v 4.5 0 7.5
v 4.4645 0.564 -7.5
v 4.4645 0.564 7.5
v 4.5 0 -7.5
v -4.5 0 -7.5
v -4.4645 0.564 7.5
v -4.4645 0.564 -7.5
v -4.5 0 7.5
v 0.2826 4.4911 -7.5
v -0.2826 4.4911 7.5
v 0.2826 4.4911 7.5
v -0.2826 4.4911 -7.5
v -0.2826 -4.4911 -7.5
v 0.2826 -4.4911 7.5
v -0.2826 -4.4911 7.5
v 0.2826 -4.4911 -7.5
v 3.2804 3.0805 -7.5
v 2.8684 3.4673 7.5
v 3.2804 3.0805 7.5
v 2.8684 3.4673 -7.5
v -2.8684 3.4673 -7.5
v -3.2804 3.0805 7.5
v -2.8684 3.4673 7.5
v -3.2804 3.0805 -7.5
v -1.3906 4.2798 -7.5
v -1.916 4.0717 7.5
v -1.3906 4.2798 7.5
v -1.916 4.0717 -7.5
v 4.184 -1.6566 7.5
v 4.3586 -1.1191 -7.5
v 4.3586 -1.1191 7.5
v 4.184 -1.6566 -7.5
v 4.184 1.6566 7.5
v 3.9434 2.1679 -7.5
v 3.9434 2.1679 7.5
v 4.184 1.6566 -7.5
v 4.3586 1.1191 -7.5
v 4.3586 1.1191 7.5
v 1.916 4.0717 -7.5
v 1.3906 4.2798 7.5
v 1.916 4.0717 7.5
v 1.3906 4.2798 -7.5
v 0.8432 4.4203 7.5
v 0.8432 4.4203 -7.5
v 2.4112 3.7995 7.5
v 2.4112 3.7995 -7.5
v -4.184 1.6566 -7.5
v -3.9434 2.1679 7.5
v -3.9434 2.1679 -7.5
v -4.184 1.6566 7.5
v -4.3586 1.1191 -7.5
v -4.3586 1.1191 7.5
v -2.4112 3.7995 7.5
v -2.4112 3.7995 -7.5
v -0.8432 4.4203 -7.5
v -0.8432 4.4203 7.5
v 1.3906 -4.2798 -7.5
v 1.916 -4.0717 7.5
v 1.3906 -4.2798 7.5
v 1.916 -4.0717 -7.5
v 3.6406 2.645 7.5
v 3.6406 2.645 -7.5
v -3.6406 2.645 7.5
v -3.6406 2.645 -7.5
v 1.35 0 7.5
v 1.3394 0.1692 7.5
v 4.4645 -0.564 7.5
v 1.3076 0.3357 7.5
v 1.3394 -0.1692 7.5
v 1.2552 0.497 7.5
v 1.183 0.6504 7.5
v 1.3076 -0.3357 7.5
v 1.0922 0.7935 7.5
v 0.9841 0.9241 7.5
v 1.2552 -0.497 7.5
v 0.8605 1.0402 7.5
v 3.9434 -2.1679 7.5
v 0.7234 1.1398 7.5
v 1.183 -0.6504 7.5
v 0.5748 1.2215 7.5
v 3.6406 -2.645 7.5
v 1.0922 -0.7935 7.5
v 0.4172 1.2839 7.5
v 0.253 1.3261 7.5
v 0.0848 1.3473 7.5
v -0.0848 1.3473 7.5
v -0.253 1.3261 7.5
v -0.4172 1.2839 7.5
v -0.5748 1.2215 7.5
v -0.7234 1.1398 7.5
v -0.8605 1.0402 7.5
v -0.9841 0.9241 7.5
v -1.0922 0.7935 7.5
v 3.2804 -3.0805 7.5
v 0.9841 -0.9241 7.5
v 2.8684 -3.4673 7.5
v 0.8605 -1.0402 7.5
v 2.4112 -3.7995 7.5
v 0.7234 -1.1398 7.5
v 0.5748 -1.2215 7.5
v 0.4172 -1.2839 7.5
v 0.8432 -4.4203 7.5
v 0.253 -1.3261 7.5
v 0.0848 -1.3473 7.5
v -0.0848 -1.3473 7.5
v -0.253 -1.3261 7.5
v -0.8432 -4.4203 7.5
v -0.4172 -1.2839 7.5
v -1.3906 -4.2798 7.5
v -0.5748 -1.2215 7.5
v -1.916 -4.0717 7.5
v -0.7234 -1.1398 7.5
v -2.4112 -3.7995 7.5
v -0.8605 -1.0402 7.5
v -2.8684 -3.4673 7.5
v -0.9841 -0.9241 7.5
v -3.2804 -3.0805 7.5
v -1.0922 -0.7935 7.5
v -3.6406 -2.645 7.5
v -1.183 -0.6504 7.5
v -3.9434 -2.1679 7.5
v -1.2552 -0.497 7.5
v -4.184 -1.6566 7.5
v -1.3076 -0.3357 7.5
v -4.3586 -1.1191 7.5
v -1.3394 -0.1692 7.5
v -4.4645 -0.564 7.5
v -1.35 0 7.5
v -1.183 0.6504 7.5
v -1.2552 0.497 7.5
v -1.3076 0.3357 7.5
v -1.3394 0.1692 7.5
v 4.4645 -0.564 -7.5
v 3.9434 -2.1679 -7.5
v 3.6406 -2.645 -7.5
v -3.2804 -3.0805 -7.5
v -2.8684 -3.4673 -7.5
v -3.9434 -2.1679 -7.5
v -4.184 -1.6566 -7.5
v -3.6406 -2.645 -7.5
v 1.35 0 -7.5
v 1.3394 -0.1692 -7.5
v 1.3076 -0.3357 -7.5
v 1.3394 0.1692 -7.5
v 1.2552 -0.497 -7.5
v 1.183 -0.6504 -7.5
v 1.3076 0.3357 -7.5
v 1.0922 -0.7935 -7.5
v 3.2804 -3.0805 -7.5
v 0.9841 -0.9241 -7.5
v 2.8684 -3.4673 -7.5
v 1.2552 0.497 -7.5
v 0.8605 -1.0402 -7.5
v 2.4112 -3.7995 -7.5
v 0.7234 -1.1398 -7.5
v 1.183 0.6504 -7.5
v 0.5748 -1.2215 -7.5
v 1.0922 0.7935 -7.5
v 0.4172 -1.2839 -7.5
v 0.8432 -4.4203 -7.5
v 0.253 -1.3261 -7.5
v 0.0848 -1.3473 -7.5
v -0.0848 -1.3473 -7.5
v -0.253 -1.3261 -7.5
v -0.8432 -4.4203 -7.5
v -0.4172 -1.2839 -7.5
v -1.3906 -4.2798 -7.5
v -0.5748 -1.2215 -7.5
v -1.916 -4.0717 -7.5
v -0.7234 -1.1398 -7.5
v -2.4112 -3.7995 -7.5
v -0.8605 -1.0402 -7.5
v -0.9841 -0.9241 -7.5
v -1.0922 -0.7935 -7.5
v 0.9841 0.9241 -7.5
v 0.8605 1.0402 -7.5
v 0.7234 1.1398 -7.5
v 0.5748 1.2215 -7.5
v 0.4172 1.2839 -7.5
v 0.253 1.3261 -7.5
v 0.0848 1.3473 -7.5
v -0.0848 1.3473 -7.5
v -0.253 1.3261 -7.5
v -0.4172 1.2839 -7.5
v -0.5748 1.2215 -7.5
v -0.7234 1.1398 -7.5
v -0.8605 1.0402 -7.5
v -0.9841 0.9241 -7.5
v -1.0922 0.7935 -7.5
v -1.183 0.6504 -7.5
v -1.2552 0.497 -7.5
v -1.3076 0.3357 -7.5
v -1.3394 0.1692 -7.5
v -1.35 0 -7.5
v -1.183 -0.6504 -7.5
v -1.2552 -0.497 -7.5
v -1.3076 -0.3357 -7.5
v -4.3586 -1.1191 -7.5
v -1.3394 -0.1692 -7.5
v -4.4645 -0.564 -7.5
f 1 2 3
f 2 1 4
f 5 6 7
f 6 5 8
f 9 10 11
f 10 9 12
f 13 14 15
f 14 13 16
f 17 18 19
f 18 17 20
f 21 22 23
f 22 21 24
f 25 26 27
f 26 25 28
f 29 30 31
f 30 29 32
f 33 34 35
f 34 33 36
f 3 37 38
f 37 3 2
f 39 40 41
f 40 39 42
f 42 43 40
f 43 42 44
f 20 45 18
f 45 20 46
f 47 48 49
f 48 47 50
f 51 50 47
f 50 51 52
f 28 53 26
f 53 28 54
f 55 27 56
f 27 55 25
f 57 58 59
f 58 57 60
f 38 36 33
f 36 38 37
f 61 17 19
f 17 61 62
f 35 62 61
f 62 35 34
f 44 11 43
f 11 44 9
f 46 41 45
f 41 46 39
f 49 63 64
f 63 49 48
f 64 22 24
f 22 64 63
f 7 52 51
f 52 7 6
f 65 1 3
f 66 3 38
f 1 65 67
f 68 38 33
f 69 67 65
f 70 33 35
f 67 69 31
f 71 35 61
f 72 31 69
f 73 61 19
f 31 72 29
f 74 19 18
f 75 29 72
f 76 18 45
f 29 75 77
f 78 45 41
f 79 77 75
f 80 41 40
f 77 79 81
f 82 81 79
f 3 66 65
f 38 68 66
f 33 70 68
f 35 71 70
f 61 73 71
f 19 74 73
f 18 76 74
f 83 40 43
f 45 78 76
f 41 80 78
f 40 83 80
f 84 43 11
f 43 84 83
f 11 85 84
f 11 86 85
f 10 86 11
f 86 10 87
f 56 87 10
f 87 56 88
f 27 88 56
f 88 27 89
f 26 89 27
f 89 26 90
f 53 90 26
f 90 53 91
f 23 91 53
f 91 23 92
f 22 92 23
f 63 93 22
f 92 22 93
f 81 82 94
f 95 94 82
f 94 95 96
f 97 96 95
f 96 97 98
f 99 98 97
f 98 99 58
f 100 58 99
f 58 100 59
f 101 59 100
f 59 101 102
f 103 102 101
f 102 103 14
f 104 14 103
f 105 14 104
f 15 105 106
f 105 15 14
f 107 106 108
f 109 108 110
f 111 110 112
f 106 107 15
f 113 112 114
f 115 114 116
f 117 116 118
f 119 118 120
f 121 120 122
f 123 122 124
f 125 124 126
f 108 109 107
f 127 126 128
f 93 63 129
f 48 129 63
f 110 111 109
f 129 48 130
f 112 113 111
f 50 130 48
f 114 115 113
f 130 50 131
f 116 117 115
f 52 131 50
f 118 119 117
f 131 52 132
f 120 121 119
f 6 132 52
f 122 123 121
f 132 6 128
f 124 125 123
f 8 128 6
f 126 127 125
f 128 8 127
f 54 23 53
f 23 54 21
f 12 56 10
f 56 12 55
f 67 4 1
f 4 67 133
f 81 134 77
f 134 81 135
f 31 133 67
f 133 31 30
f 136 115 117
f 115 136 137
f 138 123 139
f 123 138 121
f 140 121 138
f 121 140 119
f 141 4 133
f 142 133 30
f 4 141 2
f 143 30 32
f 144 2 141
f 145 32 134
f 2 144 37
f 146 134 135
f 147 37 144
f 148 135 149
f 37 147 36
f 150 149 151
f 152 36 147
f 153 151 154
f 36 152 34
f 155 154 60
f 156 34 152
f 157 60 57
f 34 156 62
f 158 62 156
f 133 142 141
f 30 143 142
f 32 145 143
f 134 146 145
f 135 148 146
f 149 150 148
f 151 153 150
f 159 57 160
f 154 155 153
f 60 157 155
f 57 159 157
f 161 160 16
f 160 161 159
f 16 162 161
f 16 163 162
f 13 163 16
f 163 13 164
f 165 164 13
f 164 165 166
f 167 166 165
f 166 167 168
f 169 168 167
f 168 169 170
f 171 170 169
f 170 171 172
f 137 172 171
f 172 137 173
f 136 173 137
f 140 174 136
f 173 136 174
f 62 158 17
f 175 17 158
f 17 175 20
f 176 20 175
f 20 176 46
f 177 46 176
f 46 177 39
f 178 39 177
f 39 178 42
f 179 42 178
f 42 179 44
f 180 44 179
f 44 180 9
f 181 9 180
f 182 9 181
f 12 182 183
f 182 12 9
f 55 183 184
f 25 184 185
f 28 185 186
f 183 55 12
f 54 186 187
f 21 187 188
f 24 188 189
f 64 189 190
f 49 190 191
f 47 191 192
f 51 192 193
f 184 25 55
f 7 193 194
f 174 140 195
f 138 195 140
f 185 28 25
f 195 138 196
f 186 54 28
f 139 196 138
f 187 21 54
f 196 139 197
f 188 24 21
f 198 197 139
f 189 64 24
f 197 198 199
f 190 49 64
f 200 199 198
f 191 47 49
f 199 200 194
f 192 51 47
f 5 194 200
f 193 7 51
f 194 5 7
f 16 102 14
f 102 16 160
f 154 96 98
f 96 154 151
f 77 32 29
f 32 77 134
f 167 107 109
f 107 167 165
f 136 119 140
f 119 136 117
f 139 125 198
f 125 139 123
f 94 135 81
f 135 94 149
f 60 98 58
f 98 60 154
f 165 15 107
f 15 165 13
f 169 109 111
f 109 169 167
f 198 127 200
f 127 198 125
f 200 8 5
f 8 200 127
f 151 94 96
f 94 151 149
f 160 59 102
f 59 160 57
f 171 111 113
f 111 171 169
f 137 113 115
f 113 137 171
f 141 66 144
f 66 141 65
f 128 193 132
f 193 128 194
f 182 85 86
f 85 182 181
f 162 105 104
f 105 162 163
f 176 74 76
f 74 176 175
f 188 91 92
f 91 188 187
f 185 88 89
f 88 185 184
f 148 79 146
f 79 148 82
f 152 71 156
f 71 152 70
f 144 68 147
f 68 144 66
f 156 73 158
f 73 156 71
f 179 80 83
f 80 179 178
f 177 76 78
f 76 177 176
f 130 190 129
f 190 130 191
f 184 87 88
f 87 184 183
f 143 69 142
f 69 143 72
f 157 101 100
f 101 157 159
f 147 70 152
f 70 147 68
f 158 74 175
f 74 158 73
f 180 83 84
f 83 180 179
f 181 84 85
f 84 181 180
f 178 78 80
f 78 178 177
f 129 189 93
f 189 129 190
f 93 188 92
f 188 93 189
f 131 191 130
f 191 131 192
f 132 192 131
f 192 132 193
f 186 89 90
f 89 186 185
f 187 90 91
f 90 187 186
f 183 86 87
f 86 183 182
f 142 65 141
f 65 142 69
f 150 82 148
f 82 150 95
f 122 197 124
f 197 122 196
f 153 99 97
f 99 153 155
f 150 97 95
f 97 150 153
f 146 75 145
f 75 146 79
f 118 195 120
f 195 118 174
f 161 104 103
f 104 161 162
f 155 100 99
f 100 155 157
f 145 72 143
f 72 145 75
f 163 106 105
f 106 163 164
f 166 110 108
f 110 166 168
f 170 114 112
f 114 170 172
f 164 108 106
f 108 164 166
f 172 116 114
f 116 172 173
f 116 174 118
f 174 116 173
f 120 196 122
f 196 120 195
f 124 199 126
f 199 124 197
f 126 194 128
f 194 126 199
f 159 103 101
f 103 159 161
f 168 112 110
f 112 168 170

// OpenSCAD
$fn = 50;


difference() {
	union() {
		translate(v = [0, 0, -7.5000000000]) {
			cylinder(h = 15, r = 4.5000000000);
		}
	}
	union() {
		translate(v = [0, 0, -100.0000000000]) {
			cylinder(h = 200, r = 1.3500000000);
		}
	}
}
